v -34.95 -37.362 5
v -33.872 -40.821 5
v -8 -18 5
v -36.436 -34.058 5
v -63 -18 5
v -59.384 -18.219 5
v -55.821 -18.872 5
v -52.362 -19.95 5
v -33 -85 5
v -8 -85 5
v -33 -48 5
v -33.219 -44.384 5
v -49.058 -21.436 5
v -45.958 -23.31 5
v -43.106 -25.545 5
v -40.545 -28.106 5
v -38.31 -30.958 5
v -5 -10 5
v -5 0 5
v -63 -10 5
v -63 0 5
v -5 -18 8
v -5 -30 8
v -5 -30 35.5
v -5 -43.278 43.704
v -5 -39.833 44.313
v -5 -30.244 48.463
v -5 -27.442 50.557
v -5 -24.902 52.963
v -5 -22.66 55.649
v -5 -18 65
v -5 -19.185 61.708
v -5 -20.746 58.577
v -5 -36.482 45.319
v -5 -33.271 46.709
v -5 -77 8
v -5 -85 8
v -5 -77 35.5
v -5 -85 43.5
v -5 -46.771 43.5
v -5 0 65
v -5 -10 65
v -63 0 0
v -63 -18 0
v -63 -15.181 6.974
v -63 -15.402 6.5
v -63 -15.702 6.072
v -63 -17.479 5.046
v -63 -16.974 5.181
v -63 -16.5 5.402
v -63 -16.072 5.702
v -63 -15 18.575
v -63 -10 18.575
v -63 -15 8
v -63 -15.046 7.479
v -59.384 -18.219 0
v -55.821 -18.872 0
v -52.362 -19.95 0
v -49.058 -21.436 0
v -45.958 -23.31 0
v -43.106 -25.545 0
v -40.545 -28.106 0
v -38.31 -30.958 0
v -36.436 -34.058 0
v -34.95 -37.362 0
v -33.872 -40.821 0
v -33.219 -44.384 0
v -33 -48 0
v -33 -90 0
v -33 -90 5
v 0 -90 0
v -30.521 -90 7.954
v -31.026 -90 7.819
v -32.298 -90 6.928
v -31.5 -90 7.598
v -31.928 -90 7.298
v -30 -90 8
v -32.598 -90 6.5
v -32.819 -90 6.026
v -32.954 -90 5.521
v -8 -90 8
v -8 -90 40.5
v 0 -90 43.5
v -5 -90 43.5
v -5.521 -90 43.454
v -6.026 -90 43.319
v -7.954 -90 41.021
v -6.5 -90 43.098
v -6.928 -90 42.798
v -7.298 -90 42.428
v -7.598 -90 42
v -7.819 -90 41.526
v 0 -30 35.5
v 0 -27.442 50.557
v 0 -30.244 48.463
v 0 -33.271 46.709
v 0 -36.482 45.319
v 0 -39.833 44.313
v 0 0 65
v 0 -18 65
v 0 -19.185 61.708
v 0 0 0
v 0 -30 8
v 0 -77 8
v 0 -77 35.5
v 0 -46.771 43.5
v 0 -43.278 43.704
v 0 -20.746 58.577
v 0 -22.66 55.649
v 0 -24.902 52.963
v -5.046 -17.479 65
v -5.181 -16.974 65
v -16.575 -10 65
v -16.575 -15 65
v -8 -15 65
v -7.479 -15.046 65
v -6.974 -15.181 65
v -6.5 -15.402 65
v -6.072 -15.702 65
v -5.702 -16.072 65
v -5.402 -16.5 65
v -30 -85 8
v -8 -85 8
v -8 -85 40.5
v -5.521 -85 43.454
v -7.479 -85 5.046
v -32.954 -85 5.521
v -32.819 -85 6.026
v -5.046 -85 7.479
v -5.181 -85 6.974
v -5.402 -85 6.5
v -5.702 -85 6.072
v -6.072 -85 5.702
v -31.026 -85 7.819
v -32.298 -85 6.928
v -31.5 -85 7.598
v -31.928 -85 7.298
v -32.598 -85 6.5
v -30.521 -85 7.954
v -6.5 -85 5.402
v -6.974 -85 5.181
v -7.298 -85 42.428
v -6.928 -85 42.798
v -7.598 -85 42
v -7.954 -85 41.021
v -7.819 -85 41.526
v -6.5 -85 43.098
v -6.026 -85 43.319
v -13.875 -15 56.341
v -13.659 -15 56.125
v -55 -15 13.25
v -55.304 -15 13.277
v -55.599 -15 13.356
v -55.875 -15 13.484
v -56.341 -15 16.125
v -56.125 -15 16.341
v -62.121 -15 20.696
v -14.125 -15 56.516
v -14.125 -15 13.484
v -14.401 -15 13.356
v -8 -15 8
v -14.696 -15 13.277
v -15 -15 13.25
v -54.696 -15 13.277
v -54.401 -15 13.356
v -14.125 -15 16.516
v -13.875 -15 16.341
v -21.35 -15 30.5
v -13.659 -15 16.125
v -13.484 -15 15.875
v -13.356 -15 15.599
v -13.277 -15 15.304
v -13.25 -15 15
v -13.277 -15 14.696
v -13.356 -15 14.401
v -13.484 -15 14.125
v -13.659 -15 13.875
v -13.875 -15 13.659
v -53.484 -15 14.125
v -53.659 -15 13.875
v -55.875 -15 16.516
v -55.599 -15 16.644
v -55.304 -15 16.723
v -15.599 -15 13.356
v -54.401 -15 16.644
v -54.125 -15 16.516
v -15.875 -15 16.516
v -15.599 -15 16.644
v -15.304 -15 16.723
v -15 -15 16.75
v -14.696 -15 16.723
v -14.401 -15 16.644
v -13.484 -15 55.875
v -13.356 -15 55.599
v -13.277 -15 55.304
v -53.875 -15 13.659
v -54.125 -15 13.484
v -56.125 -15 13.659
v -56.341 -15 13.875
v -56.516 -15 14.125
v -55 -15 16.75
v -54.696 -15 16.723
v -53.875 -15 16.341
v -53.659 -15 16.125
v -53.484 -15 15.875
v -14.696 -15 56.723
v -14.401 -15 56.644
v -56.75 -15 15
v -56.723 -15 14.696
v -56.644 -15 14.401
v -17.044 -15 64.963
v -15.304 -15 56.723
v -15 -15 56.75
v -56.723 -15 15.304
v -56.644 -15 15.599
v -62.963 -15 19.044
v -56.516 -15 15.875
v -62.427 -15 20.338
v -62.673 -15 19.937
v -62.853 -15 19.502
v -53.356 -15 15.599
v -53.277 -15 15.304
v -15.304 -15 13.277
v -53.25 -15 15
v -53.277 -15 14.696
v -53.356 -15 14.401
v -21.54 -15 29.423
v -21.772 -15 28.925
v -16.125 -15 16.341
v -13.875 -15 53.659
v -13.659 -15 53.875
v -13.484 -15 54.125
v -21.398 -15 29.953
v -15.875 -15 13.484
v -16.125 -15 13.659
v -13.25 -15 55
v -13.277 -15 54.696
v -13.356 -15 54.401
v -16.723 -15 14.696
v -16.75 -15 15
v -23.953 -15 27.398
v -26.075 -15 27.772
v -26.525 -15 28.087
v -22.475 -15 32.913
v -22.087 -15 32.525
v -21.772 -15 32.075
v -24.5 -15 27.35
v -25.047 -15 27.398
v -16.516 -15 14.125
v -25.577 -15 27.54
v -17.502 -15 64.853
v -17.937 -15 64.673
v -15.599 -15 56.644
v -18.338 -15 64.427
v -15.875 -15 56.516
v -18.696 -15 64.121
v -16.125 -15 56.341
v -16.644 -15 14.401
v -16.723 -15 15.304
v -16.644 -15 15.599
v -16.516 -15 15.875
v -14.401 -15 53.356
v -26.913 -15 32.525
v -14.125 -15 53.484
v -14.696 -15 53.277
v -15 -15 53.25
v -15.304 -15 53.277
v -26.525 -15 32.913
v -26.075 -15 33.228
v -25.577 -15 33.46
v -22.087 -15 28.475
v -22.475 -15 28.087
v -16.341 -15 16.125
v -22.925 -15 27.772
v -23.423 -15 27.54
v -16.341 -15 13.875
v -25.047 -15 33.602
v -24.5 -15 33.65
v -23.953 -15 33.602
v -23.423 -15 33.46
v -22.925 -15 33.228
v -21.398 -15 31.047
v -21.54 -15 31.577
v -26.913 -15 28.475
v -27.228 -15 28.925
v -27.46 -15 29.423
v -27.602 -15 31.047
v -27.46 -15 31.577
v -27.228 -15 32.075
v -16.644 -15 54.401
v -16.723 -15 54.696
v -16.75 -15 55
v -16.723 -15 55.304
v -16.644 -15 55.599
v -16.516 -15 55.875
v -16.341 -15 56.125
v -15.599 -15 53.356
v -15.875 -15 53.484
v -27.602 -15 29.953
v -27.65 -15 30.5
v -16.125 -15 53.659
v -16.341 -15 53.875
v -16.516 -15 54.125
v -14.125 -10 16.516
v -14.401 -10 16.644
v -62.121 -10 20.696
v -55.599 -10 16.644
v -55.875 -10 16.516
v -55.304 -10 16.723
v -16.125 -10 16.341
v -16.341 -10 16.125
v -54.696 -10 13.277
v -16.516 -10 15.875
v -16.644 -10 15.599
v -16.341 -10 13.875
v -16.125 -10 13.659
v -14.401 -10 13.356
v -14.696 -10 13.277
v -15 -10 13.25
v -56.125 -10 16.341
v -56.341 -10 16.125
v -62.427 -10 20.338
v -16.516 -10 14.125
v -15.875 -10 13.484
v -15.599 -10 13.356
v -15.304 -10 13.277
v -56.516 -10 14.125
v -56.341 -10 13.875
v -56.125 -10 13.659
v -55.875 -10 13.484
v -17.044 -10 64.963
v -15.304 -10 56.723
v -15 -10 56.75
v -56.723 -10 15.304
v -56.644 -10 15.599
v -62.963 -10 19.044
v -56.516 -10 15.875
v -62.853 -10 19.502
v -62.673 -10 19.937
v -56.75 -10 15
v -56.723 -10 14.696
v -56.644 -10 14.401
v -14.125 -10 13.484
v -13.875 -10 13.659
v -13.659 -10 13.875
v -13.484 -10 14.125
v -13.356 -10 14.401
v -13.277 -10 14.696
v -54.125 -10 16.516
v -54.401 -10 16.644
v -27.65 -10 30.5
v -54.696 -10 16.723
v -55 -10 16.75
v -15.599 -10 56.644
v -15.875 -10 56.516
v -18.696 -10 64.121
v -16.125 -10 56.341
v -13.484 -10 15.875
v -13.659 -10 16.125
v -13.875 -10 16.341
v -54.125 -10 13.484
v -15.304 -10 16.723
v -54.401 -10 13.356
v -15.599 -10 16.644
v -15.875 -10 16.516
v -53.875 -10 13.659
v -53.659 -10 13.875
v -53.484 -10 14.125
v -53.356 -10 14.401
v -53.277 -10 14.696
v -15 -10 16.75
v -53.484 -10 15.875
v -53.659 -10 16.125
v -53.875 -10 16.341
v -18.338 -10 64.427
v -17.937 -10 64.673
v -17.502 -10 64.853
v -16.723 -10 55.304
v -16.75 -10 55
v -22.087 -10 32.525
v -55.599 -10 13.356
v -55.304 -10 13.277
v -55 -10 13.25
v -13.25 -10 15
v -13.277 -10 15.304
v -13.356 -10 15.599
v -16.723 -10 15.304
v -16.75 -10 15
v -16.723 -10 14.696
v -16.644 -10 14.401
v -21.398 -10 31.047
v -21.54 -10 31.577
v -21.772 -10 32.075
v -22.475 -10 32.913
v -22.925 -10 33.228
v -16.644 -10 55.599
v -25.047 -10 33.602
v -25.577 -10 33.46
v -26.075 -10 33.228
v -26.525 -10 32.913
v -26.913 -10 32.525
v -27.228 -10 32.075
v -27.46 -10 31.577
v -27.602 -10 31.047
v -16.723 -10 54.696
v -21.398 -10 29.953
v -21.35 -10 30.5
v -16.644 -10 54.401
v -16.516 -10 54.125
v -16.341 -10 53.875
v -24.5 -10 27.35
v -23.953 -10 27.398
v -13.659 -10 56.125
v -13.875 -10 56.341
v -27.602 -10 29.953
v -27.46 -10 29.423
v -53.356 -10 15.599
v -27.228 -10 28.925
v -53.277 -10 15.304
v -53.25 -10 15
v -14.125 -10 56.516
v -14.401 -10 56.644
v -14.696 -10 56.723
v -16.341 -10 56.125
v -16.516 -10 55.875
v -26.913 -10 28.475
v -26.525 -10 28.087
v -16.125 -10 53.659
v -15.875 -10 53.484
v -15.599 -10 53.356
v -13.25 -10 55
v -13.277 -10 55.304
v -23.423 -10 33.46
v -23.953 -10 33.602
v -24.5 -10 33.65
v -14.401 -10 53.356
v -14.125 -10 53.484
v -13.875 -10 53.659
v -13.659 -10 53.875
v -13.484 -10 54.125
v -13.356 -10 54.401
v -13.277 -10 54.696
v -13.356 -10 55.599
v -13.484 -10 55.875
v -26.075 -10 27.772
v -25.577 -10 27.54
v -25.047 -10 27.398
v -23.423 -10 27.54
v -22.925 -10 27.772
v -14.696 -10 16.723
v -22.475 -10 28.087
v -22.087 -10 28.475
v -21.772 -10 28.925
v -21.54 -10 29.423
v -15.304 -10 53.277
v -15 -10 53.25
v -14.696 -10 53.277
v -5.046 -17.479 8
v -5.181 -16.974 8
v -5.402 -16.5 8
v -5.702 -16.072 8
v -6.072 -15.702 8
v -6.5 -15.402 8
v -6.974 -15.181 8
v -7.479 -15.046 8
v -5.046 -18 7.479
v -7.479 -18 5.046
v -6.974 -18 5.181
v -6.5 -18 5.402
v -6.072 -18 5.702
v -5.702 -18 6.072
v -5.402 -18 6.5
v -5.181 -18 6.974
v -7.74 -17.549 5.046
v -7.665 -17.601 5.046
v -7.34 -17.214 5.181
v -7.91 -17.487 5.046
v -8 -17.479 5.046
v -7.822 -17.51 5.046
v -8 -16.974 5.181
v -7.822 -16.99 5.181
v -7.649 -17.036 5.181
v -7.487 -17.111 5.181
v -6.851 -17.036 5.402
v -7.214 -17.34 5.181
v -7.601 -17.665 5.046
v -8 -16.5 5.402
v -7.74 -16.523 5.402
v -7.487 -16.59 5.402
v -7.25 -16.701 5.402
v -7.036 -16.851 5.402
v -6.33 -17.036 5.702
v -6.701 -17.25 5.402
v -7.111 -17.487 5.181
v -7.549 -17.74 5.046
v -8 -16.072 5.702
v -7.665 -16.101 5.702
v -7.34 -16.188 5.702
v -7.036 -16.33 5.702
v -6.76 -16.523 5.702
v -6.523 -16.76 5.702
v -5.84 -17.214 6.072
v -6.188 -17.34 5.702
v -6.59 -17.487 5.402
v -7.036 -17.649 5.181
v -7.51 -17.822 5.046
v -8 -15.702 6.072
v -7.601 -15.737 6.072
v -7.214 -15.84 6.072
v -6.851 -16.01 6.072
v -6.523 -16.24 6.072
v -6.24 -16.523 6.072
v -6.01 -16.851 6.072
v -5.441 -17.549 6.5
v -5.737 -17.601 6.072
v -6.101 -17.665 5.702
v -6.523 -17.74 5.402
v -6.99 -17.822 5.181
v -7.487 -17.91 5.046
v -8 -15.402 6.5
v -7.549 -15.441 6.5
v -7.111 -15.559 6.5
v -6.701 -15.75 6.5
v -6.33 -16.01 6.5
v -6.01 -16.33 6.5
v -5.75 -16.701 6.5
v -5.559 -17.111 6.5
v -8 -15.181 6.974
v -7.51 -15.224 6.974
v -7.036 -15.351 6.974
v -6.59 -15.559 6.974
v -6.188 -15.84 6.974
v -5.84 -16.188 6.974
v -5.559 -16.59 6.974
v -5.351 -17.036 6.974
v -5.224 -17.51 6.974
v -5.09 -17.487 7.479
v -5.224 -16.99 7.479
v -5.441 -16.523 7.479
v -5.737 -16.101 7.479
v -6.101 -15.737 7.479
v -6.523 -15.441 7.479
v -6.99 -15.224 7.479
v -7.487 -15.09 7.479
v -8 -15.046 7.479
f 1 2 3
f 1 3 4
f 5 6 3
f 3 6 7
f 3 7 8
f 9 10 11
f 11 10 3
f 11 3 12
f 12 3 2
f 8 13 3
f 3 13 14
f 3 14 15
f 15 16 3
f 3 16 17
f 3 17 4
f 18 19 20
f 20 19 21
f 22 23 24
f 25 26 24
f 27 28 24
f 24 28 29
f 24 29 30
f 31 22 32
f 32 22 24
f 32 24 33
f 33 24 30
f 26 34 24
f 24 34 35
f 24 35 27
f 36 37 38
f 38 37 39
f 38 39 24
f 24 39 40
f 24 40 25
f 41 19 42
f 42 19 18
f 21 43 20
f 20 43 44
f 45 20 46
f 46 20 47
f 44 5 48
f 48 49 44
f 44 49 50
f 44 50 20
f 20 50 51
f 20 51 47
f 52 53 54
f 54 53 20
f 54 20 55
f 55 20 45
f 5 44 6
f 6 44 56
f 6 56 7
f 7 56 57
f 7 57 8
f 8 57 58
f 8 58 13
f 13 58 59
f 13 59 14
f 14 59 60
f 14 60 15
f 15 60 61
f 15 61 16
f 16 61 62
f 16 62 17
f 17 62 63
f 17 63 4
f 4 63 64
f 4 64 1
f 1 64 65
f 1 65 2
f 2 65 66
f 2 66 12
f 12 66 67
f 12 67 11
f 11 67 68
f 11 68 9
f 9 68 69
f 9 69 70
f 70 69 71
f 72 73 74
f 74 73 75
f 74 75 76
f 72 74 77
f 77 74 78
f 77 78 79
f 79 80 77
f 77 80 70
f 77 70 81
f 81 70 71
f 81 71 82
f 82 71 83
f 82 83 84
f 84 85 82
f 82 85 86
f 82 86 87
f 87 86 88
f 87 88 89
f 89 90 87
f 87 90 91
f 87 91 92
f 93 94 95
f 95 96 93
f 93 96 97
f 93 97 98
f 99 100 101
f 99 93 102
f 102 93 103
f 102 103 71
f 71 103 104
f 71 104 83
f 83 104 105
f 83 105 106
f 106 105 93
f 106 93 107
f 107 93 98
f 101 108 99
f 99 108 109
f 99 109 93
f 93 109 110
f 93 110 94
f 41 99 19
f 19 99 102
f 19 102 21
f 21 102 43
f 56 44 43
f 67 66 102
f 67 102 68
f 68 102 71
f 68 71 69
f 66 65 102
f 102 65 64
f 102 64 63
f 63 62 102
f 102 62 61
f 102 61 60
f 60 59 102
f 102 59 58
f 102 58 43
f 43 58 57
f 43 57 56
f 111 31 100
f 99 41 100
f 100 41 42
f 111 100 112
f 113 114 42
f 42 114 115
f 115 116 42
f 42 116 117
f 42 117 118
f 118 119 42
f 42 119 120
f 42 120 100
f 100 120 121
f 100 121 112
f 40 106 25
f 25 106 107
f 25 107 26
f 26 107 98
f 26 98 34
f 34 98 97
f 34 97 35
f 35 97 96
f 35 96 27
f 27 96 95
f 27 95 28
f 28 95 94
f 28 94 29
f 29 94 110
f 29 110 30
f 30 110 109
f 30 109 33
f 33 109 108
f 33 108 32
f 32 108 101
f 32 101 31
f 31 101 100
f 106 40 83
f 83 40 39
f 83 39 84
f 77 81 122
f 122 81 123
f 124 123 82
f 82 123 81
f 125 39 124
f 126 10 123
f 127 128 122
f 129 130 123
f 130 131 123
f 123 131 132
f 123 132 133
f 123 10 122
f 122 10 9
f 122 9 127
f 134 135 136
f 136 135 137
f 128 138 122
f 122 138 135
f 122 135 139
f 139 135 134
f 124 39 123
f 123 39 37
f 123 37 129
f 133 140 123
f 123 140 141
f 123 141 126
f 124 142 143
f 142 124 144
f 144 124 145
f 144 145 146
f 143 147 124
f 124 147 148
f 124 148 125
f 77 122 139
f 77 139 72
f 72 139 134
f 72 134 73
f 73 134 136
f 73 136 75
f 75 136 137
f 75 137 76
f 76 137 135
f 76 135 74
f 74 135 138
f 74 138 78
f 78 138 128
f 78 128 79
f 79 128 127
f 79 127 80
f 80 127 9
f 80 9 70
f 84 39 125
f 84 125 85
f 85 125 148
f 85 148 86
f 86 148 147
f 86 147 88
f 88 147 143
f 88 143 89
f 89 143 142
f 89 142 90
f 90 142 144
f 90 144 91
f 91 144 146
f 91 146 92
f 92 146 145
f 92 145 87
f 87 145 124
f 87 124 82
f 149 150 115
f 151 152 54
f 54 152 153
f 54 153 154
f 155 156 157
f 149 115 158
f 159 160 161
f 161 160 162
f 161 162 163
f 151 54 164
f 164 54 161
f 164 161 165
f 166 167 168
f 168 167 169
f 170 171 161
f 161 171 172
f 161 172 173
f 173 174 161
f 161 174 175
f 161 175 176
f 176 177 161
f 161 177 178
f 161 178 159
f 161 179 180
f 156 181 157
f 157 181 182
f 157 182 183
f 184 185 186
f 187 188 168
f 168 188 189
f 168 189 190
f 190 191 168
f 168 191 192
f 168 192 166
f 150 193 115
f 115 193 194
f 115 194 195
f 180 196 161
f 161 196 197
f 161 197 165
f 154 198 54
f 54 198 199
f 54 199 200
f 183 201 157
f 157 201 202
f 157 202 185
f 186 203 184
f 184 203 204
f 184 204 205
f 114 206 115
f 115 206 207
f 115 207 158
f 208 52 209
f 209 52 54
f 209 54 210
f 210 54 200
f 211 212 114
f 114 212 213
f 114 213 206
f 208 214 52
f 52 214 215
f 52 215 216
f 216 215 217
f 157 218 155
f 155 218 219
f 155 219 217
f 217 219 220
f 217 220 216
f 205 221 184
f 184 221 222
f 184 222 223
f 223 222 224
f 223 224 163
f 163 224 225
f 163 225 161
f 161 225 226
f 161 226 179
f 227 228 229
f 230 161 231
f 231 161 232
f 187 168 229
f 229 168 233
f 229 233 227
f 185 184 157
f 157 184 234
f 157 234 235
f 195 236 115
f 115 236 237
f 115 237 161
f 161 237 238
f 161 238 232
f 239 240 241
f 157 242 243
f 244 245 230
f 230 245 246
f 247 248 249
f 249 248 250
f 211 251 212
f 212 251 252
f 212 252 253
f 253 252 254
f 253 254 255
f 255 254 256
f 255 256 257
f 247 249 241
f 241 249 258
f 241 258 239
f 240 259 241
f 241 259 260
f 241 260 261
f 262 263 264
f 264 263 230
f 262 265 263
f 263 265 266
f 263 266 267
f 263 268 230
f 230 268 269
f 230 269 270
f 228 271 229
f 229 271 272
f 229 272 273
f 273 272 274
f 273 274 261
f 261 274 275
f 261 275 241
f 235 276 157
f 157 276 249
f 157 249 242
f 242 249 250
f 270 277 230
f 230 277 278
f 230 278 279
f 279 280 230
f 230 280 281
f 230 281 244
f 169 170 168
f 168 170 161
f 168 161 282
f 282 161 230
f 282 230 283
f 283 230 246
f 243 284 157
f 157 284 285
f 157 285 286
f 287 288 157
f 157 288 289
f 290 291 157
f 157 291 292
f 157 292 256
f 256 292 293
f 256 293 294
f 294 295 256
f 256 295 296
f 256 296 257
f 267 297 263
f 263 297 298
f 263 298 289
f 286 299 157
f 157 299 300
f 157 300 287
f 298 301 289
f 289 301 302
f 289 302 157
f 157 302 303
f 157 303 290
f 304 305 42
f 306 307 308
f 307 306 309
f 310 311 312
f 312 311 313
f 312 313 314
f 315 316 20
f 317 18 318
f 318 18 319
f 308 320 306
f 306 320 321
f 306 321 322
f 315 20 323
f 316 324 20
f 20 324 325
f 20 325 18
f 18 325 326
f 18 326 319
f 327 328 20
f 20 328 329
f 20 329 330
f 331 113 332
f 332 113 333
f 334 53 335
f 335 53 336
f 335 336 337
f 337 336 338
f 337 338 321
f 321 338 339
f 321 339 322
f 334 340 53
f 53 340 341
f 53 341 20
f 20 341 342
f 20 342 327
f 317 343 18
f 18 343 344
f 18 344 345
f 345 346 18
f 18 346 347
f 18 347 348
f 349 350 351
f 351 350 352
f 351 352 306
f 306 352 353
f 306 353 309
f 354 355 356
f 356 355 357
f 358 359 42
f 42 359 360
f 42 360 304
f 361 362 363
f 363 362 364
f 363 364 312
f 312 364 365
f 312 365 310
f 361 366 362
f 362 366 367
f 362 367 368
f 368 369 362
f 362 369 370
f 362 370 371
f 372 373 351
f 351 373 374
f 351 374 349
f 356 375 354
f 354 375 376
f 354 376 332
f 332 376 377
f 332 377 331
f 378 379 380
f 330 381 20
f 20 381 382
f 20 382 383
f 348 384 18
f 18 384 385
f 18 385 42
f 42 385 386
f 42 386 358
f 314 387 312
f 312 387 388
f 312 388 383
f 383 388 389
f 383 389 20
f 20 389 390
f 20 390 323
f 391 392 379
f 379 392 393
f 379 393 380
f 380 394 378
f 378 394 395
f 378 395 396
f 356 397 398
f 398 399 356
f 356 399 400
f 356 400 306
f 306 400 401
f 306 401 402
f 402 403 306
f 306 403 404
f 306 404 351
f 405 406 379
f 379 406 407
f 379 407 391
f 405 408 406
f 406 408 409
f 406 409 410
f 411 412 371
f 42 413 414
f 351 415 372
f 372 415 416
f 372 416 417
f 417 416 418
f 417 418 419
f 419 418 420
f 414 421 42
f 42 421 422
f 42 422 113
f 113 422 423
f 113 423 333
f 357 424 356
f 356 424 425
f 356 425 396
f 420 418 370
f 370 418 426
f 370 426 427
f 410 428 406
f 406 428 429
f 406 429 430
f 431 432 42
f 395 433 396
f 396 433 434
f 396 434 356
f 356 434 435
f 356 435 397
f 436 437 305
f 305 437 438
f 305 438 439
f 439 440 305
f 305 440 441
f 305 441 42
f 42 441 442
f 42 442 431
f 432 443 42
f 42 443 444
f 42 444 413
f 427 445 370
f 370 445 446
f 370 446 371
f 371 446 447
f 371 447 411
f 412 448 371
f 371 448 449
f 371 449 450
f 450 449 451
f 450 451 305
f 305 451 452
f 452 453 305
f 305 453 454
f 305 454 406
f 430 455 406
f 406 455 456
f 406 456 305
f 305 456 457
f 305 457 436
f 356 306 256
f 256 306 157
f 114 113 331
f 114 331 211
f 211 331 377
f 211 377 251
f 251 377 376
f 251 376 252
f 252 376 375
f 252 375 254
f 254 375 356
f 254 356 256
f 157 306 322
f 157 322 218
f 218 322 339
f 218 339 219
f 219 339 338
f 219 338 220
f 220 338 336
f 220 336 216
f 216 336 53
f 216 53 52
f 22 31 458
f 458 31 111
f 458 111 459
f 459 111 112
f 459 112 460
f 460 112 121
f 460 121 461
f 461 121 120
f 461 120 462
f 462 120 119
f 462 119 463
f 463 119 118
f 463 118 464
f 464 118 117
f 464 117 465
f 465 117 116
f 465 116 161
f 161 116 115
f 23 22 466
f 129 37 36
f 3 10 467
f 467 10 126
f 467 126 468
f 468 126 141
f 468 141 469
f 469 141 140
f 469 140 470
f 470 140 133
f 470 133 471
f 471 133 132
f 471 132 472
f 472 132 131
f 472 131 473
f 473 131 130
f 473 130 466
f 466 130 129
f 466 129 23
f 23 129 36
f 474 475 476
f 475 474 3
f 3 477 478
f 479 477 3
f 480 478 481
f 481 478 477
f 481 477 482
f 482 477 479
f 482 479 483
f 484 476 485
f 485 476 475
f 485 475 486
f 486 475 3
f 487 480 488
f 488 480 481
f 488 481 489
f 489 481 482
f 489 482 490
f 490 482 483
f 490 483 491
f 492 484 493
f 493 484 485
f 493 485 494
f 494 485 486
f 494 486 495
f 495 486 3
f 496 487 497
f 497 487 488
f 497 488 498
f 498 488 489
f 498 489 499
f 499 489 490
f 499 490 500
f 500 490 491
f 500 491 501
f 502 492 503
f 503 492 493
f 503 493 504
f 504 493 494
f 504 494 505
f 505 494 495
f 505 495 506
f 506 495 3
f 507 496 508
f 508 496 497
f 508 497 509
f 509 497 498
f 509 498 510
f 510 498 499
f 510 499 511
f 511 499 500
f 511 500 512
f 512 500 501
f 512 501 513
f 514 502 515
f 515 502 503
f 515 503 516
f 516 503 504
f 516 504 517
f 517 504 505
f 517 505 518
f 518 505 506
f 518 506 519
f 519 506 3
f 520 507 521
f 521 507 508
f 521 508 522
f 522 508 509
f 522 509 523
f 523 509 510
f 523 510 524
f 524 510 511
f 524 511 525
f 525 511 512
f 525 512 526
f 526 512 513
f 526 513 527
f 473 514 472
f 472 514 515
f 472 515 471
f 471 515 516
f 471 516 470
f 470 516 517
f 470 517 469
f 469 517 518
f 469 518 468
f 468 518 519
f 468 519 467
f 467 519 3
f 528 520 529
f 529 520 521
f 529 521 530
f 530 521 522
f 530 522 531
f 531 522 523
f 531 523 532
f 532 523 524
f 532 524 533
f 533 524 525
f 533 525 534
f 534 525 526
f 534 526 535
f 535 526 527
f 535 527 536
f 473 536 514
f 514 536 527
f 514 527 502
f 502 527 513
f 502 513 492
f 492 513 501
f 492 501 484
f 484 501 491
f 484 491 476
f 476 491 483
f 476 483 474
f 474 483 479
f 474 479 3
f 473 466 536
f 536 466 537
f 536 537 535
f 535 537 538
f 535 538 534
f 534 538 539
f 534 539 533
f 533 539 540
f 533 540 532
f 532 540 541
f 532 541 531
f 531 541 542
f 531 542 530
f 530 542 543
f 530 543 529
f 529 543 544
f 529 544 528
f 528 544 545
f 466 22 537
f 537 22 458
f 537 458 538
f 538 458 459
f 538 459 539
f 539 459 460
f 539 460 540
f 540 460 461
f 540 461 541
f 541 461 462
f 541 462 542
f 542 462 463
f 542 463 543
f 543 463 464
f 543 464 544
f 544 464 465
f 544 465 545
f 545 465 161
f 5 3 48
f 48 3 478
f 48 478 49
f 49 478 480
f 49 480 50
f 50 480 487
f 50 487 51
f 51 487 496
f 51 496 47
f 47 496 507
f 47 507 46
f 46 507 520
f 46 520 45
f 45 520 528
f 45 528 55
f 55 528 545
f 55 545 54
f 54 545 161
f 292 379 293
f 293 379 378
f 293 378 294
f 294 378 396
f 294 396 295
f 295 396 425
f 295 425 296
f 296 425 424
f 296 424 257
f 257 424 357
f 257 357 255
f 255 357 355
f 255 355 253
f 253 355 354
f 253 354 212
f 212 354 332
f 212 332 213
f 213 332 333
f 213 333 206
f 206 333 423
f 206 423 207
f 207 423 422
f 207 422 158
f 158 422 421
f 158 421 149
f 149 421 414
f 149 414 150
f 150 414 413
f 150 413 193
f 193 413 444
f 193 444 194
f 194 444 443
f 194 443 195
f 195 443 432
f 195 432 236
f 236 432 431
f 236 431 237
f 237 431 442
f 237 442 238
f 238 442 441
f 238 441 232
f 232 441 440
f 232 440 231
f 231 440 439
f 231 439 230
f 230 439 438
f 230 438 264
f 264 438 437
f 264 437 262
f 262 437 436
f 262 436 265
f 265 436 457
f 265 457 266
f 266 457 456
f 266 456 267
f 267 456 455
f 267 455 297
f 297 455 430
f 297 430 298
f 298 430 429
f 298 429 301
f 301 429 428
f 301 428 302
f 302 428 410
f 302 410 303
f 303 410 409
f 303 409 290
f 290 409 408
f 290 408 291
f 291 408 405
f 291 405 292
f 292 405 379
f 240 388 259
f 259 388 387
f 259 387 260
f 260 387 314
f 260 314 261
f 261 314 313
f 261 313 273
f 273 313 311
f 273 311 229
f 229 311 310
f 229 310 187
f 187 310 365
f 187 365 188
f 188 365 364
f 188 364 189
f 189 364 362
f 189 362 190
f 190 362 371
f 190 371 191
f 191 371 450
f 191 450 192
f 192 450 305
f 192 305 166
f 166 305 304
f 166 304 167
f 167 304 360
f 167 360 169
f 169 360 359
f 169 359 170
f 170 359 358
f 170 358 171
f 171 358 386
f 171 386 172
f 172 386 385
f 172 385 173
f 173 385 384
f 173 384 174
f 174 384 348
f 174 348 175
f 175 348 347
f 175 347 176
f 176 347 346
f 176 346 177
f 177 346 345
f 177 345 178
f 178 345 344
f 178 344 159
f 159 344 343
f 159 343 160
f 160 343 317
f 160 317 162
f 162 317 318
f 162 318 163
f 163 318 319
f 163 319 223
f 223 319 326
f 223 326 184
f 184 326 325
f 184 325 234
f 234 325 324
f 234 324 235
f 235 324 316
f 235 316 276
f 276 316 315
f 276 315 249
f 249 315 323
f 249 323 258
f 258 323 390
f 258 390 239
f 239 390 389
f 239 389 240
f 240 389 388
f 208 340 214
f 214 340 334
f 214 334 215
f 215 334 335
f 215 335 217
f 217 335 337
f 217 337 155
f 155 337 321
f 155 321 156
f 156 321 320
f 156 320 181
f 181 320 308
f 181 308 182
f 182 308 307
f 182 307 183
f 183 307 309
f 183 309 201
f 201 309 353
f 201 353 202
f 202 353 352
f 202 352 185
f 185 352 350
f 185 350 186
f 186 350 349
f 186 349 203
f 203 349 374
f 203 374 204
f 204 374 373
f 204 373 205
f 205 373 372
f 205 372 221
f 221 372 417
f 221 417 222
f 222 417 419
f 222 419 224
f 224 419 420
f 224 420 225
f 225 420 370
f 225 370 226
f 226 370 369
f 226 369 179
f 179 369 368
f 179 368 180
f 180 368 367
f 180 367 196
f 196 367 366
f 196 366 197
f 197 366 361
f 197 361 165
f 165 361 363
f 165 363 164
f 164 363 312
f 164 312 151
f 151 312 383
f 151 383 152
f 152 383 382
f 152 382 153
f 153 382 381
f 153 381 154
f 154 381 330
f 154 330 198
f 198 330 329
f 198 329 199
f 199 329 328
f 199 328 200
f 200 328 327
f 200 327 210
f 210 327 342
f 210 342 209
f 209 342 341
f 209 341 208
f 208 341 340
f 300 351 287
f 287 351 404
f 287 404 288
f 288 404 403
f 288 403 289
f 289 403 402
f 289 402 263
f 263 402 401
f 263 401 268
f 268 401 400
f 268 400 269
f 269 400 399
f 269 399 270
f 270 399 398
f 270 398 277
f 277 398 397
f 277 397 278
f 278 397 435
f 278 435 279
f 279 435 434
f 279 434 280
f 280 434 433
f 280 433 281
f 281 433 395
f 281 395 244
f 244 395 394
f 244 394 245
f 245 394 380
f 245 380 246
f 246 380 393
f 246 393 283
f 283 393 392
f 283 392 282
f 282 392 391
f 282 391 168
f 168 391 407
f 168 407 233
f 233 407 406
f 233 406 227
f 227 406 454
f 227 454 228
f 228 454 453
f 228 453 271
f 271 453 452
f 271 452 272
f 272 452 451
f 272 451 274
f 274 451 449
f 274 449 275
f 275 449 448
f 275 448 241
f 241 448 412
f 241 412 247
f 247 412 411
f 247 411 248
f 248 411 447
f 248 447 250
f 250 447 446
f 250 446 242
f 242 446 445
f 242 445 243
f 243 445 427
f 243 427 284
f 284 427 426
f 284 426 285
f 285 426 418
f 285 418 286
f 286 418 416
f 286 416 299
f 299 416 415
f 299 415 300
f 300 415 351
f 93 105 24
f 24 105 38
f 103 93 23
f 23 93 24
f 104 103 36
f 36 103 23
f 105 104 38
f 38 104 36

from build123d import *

# Parameters (mm, degrees)
SALIENTE_EXTRUIR1_DEPTH = 5
CROQUIS2_W              = 5
CROQUIS2_H              = 90
SALIENTE_EXTRUIR2_DEPTH = 60
CORTAR_EXTRUIR1_DEPTH   = 5
SALIENTE_EXTRUIR3_DEPTH = 5
REDONDEO1_R             = 3
CROQUIS5_W              = 58
CROQUIS5_H              = 5
SALIENTE_EXTRUIR4_DEPTH = 60
CORTAR_EXTRUIR2_DEPTH   = 5
REDONDEO2_R             = 3
REDONDEO3_R             = 3
CROQUIS7_R              = 1.75
CROQUIS7_R_2            = 3.15
CORTAR_EXTRUIR3_DEPTH   = 5
CROQUIS8_W              = 27.5
CROQUIS8_H              = 47
CORTAR_EXTRUIR4_DEPTH   = 5


with BuildPart() as part:
    # Croquis1 → Saliente-Extruir1 (new body)
    with BuildSketch(Plane.XY):
        with BuildLine():
            Line((-63, 0), (0, 0))
            Line((0, 0), (0, -90))
            Line((0, -90), (-33, -90))
            Line((-33, -90), (-33, -48))
            ThreePointArc((-33, -48), (-41.786797, -26.786797), (-63, -18))
            Line((-63, -18), (-63, 0))
        make_face()
    extrude(amount=SALIENTE_EXTRUIR1_DEPTH)

    # Croquis2 → Saliente-Extruir2 (add)
    with BuildSketch(Plane.XY.offset(5)):
        with Locations((-2.5, -45)):
            Rectangle(CROQUIS2_W, CROQUIS2_H)
    extrude(amount=SALIENTE_EXTRUIR2_DEPTH)

    # Croquis3 → Cortar-Extruir1 (cut)
    with BuildSketch(Plane(origin=(0, 0, 0), x_dir=(0, 0, -1), z_dir=(1, 0, 0))):
        with BuildLine():
            Line((-65, -90), (-43.5, -90))
            Line((-43.5, -90), (-43.5, -46.770645))
            ThreePointArc((-43.5, -46.770645), (-49.46877, -28.81236), (-65, -18))
            Line((-65, -18), (-65, -90))
        make_face()
    extrude(amount=-CORTAR_EXTRUIR1_DEPTH, mode=Mode.SUBTRACT)

    # Croquis4 → Saliente-Extruir3 (add)
    with BuildSketch(Plane.XZ.offset(90)):
        Polygon((-33, 8), (-8, 8), (-8, 43.5), (-5, 43.5), (-5, 5), (-33, 5), align=None)
    extrude(amount=-SALIENTE_EXTRUIR3_DEPTH)

    # Redondeo1
    redondeo1_edges = [part.edges().sort_by_distance(p)[0] for p in [
        (-33, -87.5, 8),
        (-8, -87.5, 43.5),
    ]]
    fillet(redondeo1_edges, radius=REDONDEO1_R)

    # Croquis5 → Saliente-Extruir4 (add)
    with BuildSketch(Plane.XY.offset(5)):
        with Locations((-34, -12.5)):
            Rectangle(CROQUIS5_W, CROQUIS5_H)
    extrude(amount=SALIENTE_EXTRUIR4_DEPTH)

    # Croquis6 → Cortar-Extruir2 (cut)
    with BuildSketch(Plane(origin=(0, -10, 0), x_dir=(1, 0, 0), z_dir=(0, 1, 0))):
        Polygon((-63, -19.817641), (-17.817641, -65), (-63, -65), align=None)
    extrude(amount=-CORTAR_EXTRUIR2_DEPTH, mode=Mode.SUBTRACT)

    # Redondeo2
    redondeo2_edges = [part.edges().sort_by_distance(p)[0] for p in [
        (-63, -12.5, 19.817641),
        (-17.817641, -12.5, 65),
    ]]
    fillet(redondeo2_edges, radius=REDONDEO2_R)

    # Redondeo3
    redondeo3_edges = [part.edges().sort_by_distance(p)[0] for p in [
        (-34, -15, 5),
        (-5, -15, 35),
        (-5, -50, 5),
    ]]
    fillet(redondeo3_edges, radius=REDONDEO3_R)

    # Croquis7 → Cortar-Extruir3 (cut)
    with BuildSketch(Plane(origin=(0, -10, 0), x_dir=(1, 0, 0), z_dir=(0, 1, 0))):
        with Locations((-15, -55)):
            Circle(CROQUIS7_R)
        with Locations((-15, -15)):
            Circle(CROQUIS7_R)
        with Locations((-55, -15)):
            Circle(CROQUIS7_R)
        with Locations((-24.5, -30.5)):
            Circle(CROQUIS7_R_2)
    extrude(amount=-CORTAR_EXTRUIR3_DEPTH, mode=Mode.SUBTRACT)

    # Croquis8 → Cortar-Extruir4 (cut)
    with BuildSketch(Plane(origin=(0, 0, 0), x_dir=(0, 0, -1), z_dir=(1, 0, 0))):
        with Locations((-21.75, -53.5)):
            Rectangle(CROQUIS8_W, CROQUIS8_H)
    extrude(amount=-CORTAR_EXTRUIR4_DEPTH, mode=Mode.SUBTRACT)


solid = part.part
